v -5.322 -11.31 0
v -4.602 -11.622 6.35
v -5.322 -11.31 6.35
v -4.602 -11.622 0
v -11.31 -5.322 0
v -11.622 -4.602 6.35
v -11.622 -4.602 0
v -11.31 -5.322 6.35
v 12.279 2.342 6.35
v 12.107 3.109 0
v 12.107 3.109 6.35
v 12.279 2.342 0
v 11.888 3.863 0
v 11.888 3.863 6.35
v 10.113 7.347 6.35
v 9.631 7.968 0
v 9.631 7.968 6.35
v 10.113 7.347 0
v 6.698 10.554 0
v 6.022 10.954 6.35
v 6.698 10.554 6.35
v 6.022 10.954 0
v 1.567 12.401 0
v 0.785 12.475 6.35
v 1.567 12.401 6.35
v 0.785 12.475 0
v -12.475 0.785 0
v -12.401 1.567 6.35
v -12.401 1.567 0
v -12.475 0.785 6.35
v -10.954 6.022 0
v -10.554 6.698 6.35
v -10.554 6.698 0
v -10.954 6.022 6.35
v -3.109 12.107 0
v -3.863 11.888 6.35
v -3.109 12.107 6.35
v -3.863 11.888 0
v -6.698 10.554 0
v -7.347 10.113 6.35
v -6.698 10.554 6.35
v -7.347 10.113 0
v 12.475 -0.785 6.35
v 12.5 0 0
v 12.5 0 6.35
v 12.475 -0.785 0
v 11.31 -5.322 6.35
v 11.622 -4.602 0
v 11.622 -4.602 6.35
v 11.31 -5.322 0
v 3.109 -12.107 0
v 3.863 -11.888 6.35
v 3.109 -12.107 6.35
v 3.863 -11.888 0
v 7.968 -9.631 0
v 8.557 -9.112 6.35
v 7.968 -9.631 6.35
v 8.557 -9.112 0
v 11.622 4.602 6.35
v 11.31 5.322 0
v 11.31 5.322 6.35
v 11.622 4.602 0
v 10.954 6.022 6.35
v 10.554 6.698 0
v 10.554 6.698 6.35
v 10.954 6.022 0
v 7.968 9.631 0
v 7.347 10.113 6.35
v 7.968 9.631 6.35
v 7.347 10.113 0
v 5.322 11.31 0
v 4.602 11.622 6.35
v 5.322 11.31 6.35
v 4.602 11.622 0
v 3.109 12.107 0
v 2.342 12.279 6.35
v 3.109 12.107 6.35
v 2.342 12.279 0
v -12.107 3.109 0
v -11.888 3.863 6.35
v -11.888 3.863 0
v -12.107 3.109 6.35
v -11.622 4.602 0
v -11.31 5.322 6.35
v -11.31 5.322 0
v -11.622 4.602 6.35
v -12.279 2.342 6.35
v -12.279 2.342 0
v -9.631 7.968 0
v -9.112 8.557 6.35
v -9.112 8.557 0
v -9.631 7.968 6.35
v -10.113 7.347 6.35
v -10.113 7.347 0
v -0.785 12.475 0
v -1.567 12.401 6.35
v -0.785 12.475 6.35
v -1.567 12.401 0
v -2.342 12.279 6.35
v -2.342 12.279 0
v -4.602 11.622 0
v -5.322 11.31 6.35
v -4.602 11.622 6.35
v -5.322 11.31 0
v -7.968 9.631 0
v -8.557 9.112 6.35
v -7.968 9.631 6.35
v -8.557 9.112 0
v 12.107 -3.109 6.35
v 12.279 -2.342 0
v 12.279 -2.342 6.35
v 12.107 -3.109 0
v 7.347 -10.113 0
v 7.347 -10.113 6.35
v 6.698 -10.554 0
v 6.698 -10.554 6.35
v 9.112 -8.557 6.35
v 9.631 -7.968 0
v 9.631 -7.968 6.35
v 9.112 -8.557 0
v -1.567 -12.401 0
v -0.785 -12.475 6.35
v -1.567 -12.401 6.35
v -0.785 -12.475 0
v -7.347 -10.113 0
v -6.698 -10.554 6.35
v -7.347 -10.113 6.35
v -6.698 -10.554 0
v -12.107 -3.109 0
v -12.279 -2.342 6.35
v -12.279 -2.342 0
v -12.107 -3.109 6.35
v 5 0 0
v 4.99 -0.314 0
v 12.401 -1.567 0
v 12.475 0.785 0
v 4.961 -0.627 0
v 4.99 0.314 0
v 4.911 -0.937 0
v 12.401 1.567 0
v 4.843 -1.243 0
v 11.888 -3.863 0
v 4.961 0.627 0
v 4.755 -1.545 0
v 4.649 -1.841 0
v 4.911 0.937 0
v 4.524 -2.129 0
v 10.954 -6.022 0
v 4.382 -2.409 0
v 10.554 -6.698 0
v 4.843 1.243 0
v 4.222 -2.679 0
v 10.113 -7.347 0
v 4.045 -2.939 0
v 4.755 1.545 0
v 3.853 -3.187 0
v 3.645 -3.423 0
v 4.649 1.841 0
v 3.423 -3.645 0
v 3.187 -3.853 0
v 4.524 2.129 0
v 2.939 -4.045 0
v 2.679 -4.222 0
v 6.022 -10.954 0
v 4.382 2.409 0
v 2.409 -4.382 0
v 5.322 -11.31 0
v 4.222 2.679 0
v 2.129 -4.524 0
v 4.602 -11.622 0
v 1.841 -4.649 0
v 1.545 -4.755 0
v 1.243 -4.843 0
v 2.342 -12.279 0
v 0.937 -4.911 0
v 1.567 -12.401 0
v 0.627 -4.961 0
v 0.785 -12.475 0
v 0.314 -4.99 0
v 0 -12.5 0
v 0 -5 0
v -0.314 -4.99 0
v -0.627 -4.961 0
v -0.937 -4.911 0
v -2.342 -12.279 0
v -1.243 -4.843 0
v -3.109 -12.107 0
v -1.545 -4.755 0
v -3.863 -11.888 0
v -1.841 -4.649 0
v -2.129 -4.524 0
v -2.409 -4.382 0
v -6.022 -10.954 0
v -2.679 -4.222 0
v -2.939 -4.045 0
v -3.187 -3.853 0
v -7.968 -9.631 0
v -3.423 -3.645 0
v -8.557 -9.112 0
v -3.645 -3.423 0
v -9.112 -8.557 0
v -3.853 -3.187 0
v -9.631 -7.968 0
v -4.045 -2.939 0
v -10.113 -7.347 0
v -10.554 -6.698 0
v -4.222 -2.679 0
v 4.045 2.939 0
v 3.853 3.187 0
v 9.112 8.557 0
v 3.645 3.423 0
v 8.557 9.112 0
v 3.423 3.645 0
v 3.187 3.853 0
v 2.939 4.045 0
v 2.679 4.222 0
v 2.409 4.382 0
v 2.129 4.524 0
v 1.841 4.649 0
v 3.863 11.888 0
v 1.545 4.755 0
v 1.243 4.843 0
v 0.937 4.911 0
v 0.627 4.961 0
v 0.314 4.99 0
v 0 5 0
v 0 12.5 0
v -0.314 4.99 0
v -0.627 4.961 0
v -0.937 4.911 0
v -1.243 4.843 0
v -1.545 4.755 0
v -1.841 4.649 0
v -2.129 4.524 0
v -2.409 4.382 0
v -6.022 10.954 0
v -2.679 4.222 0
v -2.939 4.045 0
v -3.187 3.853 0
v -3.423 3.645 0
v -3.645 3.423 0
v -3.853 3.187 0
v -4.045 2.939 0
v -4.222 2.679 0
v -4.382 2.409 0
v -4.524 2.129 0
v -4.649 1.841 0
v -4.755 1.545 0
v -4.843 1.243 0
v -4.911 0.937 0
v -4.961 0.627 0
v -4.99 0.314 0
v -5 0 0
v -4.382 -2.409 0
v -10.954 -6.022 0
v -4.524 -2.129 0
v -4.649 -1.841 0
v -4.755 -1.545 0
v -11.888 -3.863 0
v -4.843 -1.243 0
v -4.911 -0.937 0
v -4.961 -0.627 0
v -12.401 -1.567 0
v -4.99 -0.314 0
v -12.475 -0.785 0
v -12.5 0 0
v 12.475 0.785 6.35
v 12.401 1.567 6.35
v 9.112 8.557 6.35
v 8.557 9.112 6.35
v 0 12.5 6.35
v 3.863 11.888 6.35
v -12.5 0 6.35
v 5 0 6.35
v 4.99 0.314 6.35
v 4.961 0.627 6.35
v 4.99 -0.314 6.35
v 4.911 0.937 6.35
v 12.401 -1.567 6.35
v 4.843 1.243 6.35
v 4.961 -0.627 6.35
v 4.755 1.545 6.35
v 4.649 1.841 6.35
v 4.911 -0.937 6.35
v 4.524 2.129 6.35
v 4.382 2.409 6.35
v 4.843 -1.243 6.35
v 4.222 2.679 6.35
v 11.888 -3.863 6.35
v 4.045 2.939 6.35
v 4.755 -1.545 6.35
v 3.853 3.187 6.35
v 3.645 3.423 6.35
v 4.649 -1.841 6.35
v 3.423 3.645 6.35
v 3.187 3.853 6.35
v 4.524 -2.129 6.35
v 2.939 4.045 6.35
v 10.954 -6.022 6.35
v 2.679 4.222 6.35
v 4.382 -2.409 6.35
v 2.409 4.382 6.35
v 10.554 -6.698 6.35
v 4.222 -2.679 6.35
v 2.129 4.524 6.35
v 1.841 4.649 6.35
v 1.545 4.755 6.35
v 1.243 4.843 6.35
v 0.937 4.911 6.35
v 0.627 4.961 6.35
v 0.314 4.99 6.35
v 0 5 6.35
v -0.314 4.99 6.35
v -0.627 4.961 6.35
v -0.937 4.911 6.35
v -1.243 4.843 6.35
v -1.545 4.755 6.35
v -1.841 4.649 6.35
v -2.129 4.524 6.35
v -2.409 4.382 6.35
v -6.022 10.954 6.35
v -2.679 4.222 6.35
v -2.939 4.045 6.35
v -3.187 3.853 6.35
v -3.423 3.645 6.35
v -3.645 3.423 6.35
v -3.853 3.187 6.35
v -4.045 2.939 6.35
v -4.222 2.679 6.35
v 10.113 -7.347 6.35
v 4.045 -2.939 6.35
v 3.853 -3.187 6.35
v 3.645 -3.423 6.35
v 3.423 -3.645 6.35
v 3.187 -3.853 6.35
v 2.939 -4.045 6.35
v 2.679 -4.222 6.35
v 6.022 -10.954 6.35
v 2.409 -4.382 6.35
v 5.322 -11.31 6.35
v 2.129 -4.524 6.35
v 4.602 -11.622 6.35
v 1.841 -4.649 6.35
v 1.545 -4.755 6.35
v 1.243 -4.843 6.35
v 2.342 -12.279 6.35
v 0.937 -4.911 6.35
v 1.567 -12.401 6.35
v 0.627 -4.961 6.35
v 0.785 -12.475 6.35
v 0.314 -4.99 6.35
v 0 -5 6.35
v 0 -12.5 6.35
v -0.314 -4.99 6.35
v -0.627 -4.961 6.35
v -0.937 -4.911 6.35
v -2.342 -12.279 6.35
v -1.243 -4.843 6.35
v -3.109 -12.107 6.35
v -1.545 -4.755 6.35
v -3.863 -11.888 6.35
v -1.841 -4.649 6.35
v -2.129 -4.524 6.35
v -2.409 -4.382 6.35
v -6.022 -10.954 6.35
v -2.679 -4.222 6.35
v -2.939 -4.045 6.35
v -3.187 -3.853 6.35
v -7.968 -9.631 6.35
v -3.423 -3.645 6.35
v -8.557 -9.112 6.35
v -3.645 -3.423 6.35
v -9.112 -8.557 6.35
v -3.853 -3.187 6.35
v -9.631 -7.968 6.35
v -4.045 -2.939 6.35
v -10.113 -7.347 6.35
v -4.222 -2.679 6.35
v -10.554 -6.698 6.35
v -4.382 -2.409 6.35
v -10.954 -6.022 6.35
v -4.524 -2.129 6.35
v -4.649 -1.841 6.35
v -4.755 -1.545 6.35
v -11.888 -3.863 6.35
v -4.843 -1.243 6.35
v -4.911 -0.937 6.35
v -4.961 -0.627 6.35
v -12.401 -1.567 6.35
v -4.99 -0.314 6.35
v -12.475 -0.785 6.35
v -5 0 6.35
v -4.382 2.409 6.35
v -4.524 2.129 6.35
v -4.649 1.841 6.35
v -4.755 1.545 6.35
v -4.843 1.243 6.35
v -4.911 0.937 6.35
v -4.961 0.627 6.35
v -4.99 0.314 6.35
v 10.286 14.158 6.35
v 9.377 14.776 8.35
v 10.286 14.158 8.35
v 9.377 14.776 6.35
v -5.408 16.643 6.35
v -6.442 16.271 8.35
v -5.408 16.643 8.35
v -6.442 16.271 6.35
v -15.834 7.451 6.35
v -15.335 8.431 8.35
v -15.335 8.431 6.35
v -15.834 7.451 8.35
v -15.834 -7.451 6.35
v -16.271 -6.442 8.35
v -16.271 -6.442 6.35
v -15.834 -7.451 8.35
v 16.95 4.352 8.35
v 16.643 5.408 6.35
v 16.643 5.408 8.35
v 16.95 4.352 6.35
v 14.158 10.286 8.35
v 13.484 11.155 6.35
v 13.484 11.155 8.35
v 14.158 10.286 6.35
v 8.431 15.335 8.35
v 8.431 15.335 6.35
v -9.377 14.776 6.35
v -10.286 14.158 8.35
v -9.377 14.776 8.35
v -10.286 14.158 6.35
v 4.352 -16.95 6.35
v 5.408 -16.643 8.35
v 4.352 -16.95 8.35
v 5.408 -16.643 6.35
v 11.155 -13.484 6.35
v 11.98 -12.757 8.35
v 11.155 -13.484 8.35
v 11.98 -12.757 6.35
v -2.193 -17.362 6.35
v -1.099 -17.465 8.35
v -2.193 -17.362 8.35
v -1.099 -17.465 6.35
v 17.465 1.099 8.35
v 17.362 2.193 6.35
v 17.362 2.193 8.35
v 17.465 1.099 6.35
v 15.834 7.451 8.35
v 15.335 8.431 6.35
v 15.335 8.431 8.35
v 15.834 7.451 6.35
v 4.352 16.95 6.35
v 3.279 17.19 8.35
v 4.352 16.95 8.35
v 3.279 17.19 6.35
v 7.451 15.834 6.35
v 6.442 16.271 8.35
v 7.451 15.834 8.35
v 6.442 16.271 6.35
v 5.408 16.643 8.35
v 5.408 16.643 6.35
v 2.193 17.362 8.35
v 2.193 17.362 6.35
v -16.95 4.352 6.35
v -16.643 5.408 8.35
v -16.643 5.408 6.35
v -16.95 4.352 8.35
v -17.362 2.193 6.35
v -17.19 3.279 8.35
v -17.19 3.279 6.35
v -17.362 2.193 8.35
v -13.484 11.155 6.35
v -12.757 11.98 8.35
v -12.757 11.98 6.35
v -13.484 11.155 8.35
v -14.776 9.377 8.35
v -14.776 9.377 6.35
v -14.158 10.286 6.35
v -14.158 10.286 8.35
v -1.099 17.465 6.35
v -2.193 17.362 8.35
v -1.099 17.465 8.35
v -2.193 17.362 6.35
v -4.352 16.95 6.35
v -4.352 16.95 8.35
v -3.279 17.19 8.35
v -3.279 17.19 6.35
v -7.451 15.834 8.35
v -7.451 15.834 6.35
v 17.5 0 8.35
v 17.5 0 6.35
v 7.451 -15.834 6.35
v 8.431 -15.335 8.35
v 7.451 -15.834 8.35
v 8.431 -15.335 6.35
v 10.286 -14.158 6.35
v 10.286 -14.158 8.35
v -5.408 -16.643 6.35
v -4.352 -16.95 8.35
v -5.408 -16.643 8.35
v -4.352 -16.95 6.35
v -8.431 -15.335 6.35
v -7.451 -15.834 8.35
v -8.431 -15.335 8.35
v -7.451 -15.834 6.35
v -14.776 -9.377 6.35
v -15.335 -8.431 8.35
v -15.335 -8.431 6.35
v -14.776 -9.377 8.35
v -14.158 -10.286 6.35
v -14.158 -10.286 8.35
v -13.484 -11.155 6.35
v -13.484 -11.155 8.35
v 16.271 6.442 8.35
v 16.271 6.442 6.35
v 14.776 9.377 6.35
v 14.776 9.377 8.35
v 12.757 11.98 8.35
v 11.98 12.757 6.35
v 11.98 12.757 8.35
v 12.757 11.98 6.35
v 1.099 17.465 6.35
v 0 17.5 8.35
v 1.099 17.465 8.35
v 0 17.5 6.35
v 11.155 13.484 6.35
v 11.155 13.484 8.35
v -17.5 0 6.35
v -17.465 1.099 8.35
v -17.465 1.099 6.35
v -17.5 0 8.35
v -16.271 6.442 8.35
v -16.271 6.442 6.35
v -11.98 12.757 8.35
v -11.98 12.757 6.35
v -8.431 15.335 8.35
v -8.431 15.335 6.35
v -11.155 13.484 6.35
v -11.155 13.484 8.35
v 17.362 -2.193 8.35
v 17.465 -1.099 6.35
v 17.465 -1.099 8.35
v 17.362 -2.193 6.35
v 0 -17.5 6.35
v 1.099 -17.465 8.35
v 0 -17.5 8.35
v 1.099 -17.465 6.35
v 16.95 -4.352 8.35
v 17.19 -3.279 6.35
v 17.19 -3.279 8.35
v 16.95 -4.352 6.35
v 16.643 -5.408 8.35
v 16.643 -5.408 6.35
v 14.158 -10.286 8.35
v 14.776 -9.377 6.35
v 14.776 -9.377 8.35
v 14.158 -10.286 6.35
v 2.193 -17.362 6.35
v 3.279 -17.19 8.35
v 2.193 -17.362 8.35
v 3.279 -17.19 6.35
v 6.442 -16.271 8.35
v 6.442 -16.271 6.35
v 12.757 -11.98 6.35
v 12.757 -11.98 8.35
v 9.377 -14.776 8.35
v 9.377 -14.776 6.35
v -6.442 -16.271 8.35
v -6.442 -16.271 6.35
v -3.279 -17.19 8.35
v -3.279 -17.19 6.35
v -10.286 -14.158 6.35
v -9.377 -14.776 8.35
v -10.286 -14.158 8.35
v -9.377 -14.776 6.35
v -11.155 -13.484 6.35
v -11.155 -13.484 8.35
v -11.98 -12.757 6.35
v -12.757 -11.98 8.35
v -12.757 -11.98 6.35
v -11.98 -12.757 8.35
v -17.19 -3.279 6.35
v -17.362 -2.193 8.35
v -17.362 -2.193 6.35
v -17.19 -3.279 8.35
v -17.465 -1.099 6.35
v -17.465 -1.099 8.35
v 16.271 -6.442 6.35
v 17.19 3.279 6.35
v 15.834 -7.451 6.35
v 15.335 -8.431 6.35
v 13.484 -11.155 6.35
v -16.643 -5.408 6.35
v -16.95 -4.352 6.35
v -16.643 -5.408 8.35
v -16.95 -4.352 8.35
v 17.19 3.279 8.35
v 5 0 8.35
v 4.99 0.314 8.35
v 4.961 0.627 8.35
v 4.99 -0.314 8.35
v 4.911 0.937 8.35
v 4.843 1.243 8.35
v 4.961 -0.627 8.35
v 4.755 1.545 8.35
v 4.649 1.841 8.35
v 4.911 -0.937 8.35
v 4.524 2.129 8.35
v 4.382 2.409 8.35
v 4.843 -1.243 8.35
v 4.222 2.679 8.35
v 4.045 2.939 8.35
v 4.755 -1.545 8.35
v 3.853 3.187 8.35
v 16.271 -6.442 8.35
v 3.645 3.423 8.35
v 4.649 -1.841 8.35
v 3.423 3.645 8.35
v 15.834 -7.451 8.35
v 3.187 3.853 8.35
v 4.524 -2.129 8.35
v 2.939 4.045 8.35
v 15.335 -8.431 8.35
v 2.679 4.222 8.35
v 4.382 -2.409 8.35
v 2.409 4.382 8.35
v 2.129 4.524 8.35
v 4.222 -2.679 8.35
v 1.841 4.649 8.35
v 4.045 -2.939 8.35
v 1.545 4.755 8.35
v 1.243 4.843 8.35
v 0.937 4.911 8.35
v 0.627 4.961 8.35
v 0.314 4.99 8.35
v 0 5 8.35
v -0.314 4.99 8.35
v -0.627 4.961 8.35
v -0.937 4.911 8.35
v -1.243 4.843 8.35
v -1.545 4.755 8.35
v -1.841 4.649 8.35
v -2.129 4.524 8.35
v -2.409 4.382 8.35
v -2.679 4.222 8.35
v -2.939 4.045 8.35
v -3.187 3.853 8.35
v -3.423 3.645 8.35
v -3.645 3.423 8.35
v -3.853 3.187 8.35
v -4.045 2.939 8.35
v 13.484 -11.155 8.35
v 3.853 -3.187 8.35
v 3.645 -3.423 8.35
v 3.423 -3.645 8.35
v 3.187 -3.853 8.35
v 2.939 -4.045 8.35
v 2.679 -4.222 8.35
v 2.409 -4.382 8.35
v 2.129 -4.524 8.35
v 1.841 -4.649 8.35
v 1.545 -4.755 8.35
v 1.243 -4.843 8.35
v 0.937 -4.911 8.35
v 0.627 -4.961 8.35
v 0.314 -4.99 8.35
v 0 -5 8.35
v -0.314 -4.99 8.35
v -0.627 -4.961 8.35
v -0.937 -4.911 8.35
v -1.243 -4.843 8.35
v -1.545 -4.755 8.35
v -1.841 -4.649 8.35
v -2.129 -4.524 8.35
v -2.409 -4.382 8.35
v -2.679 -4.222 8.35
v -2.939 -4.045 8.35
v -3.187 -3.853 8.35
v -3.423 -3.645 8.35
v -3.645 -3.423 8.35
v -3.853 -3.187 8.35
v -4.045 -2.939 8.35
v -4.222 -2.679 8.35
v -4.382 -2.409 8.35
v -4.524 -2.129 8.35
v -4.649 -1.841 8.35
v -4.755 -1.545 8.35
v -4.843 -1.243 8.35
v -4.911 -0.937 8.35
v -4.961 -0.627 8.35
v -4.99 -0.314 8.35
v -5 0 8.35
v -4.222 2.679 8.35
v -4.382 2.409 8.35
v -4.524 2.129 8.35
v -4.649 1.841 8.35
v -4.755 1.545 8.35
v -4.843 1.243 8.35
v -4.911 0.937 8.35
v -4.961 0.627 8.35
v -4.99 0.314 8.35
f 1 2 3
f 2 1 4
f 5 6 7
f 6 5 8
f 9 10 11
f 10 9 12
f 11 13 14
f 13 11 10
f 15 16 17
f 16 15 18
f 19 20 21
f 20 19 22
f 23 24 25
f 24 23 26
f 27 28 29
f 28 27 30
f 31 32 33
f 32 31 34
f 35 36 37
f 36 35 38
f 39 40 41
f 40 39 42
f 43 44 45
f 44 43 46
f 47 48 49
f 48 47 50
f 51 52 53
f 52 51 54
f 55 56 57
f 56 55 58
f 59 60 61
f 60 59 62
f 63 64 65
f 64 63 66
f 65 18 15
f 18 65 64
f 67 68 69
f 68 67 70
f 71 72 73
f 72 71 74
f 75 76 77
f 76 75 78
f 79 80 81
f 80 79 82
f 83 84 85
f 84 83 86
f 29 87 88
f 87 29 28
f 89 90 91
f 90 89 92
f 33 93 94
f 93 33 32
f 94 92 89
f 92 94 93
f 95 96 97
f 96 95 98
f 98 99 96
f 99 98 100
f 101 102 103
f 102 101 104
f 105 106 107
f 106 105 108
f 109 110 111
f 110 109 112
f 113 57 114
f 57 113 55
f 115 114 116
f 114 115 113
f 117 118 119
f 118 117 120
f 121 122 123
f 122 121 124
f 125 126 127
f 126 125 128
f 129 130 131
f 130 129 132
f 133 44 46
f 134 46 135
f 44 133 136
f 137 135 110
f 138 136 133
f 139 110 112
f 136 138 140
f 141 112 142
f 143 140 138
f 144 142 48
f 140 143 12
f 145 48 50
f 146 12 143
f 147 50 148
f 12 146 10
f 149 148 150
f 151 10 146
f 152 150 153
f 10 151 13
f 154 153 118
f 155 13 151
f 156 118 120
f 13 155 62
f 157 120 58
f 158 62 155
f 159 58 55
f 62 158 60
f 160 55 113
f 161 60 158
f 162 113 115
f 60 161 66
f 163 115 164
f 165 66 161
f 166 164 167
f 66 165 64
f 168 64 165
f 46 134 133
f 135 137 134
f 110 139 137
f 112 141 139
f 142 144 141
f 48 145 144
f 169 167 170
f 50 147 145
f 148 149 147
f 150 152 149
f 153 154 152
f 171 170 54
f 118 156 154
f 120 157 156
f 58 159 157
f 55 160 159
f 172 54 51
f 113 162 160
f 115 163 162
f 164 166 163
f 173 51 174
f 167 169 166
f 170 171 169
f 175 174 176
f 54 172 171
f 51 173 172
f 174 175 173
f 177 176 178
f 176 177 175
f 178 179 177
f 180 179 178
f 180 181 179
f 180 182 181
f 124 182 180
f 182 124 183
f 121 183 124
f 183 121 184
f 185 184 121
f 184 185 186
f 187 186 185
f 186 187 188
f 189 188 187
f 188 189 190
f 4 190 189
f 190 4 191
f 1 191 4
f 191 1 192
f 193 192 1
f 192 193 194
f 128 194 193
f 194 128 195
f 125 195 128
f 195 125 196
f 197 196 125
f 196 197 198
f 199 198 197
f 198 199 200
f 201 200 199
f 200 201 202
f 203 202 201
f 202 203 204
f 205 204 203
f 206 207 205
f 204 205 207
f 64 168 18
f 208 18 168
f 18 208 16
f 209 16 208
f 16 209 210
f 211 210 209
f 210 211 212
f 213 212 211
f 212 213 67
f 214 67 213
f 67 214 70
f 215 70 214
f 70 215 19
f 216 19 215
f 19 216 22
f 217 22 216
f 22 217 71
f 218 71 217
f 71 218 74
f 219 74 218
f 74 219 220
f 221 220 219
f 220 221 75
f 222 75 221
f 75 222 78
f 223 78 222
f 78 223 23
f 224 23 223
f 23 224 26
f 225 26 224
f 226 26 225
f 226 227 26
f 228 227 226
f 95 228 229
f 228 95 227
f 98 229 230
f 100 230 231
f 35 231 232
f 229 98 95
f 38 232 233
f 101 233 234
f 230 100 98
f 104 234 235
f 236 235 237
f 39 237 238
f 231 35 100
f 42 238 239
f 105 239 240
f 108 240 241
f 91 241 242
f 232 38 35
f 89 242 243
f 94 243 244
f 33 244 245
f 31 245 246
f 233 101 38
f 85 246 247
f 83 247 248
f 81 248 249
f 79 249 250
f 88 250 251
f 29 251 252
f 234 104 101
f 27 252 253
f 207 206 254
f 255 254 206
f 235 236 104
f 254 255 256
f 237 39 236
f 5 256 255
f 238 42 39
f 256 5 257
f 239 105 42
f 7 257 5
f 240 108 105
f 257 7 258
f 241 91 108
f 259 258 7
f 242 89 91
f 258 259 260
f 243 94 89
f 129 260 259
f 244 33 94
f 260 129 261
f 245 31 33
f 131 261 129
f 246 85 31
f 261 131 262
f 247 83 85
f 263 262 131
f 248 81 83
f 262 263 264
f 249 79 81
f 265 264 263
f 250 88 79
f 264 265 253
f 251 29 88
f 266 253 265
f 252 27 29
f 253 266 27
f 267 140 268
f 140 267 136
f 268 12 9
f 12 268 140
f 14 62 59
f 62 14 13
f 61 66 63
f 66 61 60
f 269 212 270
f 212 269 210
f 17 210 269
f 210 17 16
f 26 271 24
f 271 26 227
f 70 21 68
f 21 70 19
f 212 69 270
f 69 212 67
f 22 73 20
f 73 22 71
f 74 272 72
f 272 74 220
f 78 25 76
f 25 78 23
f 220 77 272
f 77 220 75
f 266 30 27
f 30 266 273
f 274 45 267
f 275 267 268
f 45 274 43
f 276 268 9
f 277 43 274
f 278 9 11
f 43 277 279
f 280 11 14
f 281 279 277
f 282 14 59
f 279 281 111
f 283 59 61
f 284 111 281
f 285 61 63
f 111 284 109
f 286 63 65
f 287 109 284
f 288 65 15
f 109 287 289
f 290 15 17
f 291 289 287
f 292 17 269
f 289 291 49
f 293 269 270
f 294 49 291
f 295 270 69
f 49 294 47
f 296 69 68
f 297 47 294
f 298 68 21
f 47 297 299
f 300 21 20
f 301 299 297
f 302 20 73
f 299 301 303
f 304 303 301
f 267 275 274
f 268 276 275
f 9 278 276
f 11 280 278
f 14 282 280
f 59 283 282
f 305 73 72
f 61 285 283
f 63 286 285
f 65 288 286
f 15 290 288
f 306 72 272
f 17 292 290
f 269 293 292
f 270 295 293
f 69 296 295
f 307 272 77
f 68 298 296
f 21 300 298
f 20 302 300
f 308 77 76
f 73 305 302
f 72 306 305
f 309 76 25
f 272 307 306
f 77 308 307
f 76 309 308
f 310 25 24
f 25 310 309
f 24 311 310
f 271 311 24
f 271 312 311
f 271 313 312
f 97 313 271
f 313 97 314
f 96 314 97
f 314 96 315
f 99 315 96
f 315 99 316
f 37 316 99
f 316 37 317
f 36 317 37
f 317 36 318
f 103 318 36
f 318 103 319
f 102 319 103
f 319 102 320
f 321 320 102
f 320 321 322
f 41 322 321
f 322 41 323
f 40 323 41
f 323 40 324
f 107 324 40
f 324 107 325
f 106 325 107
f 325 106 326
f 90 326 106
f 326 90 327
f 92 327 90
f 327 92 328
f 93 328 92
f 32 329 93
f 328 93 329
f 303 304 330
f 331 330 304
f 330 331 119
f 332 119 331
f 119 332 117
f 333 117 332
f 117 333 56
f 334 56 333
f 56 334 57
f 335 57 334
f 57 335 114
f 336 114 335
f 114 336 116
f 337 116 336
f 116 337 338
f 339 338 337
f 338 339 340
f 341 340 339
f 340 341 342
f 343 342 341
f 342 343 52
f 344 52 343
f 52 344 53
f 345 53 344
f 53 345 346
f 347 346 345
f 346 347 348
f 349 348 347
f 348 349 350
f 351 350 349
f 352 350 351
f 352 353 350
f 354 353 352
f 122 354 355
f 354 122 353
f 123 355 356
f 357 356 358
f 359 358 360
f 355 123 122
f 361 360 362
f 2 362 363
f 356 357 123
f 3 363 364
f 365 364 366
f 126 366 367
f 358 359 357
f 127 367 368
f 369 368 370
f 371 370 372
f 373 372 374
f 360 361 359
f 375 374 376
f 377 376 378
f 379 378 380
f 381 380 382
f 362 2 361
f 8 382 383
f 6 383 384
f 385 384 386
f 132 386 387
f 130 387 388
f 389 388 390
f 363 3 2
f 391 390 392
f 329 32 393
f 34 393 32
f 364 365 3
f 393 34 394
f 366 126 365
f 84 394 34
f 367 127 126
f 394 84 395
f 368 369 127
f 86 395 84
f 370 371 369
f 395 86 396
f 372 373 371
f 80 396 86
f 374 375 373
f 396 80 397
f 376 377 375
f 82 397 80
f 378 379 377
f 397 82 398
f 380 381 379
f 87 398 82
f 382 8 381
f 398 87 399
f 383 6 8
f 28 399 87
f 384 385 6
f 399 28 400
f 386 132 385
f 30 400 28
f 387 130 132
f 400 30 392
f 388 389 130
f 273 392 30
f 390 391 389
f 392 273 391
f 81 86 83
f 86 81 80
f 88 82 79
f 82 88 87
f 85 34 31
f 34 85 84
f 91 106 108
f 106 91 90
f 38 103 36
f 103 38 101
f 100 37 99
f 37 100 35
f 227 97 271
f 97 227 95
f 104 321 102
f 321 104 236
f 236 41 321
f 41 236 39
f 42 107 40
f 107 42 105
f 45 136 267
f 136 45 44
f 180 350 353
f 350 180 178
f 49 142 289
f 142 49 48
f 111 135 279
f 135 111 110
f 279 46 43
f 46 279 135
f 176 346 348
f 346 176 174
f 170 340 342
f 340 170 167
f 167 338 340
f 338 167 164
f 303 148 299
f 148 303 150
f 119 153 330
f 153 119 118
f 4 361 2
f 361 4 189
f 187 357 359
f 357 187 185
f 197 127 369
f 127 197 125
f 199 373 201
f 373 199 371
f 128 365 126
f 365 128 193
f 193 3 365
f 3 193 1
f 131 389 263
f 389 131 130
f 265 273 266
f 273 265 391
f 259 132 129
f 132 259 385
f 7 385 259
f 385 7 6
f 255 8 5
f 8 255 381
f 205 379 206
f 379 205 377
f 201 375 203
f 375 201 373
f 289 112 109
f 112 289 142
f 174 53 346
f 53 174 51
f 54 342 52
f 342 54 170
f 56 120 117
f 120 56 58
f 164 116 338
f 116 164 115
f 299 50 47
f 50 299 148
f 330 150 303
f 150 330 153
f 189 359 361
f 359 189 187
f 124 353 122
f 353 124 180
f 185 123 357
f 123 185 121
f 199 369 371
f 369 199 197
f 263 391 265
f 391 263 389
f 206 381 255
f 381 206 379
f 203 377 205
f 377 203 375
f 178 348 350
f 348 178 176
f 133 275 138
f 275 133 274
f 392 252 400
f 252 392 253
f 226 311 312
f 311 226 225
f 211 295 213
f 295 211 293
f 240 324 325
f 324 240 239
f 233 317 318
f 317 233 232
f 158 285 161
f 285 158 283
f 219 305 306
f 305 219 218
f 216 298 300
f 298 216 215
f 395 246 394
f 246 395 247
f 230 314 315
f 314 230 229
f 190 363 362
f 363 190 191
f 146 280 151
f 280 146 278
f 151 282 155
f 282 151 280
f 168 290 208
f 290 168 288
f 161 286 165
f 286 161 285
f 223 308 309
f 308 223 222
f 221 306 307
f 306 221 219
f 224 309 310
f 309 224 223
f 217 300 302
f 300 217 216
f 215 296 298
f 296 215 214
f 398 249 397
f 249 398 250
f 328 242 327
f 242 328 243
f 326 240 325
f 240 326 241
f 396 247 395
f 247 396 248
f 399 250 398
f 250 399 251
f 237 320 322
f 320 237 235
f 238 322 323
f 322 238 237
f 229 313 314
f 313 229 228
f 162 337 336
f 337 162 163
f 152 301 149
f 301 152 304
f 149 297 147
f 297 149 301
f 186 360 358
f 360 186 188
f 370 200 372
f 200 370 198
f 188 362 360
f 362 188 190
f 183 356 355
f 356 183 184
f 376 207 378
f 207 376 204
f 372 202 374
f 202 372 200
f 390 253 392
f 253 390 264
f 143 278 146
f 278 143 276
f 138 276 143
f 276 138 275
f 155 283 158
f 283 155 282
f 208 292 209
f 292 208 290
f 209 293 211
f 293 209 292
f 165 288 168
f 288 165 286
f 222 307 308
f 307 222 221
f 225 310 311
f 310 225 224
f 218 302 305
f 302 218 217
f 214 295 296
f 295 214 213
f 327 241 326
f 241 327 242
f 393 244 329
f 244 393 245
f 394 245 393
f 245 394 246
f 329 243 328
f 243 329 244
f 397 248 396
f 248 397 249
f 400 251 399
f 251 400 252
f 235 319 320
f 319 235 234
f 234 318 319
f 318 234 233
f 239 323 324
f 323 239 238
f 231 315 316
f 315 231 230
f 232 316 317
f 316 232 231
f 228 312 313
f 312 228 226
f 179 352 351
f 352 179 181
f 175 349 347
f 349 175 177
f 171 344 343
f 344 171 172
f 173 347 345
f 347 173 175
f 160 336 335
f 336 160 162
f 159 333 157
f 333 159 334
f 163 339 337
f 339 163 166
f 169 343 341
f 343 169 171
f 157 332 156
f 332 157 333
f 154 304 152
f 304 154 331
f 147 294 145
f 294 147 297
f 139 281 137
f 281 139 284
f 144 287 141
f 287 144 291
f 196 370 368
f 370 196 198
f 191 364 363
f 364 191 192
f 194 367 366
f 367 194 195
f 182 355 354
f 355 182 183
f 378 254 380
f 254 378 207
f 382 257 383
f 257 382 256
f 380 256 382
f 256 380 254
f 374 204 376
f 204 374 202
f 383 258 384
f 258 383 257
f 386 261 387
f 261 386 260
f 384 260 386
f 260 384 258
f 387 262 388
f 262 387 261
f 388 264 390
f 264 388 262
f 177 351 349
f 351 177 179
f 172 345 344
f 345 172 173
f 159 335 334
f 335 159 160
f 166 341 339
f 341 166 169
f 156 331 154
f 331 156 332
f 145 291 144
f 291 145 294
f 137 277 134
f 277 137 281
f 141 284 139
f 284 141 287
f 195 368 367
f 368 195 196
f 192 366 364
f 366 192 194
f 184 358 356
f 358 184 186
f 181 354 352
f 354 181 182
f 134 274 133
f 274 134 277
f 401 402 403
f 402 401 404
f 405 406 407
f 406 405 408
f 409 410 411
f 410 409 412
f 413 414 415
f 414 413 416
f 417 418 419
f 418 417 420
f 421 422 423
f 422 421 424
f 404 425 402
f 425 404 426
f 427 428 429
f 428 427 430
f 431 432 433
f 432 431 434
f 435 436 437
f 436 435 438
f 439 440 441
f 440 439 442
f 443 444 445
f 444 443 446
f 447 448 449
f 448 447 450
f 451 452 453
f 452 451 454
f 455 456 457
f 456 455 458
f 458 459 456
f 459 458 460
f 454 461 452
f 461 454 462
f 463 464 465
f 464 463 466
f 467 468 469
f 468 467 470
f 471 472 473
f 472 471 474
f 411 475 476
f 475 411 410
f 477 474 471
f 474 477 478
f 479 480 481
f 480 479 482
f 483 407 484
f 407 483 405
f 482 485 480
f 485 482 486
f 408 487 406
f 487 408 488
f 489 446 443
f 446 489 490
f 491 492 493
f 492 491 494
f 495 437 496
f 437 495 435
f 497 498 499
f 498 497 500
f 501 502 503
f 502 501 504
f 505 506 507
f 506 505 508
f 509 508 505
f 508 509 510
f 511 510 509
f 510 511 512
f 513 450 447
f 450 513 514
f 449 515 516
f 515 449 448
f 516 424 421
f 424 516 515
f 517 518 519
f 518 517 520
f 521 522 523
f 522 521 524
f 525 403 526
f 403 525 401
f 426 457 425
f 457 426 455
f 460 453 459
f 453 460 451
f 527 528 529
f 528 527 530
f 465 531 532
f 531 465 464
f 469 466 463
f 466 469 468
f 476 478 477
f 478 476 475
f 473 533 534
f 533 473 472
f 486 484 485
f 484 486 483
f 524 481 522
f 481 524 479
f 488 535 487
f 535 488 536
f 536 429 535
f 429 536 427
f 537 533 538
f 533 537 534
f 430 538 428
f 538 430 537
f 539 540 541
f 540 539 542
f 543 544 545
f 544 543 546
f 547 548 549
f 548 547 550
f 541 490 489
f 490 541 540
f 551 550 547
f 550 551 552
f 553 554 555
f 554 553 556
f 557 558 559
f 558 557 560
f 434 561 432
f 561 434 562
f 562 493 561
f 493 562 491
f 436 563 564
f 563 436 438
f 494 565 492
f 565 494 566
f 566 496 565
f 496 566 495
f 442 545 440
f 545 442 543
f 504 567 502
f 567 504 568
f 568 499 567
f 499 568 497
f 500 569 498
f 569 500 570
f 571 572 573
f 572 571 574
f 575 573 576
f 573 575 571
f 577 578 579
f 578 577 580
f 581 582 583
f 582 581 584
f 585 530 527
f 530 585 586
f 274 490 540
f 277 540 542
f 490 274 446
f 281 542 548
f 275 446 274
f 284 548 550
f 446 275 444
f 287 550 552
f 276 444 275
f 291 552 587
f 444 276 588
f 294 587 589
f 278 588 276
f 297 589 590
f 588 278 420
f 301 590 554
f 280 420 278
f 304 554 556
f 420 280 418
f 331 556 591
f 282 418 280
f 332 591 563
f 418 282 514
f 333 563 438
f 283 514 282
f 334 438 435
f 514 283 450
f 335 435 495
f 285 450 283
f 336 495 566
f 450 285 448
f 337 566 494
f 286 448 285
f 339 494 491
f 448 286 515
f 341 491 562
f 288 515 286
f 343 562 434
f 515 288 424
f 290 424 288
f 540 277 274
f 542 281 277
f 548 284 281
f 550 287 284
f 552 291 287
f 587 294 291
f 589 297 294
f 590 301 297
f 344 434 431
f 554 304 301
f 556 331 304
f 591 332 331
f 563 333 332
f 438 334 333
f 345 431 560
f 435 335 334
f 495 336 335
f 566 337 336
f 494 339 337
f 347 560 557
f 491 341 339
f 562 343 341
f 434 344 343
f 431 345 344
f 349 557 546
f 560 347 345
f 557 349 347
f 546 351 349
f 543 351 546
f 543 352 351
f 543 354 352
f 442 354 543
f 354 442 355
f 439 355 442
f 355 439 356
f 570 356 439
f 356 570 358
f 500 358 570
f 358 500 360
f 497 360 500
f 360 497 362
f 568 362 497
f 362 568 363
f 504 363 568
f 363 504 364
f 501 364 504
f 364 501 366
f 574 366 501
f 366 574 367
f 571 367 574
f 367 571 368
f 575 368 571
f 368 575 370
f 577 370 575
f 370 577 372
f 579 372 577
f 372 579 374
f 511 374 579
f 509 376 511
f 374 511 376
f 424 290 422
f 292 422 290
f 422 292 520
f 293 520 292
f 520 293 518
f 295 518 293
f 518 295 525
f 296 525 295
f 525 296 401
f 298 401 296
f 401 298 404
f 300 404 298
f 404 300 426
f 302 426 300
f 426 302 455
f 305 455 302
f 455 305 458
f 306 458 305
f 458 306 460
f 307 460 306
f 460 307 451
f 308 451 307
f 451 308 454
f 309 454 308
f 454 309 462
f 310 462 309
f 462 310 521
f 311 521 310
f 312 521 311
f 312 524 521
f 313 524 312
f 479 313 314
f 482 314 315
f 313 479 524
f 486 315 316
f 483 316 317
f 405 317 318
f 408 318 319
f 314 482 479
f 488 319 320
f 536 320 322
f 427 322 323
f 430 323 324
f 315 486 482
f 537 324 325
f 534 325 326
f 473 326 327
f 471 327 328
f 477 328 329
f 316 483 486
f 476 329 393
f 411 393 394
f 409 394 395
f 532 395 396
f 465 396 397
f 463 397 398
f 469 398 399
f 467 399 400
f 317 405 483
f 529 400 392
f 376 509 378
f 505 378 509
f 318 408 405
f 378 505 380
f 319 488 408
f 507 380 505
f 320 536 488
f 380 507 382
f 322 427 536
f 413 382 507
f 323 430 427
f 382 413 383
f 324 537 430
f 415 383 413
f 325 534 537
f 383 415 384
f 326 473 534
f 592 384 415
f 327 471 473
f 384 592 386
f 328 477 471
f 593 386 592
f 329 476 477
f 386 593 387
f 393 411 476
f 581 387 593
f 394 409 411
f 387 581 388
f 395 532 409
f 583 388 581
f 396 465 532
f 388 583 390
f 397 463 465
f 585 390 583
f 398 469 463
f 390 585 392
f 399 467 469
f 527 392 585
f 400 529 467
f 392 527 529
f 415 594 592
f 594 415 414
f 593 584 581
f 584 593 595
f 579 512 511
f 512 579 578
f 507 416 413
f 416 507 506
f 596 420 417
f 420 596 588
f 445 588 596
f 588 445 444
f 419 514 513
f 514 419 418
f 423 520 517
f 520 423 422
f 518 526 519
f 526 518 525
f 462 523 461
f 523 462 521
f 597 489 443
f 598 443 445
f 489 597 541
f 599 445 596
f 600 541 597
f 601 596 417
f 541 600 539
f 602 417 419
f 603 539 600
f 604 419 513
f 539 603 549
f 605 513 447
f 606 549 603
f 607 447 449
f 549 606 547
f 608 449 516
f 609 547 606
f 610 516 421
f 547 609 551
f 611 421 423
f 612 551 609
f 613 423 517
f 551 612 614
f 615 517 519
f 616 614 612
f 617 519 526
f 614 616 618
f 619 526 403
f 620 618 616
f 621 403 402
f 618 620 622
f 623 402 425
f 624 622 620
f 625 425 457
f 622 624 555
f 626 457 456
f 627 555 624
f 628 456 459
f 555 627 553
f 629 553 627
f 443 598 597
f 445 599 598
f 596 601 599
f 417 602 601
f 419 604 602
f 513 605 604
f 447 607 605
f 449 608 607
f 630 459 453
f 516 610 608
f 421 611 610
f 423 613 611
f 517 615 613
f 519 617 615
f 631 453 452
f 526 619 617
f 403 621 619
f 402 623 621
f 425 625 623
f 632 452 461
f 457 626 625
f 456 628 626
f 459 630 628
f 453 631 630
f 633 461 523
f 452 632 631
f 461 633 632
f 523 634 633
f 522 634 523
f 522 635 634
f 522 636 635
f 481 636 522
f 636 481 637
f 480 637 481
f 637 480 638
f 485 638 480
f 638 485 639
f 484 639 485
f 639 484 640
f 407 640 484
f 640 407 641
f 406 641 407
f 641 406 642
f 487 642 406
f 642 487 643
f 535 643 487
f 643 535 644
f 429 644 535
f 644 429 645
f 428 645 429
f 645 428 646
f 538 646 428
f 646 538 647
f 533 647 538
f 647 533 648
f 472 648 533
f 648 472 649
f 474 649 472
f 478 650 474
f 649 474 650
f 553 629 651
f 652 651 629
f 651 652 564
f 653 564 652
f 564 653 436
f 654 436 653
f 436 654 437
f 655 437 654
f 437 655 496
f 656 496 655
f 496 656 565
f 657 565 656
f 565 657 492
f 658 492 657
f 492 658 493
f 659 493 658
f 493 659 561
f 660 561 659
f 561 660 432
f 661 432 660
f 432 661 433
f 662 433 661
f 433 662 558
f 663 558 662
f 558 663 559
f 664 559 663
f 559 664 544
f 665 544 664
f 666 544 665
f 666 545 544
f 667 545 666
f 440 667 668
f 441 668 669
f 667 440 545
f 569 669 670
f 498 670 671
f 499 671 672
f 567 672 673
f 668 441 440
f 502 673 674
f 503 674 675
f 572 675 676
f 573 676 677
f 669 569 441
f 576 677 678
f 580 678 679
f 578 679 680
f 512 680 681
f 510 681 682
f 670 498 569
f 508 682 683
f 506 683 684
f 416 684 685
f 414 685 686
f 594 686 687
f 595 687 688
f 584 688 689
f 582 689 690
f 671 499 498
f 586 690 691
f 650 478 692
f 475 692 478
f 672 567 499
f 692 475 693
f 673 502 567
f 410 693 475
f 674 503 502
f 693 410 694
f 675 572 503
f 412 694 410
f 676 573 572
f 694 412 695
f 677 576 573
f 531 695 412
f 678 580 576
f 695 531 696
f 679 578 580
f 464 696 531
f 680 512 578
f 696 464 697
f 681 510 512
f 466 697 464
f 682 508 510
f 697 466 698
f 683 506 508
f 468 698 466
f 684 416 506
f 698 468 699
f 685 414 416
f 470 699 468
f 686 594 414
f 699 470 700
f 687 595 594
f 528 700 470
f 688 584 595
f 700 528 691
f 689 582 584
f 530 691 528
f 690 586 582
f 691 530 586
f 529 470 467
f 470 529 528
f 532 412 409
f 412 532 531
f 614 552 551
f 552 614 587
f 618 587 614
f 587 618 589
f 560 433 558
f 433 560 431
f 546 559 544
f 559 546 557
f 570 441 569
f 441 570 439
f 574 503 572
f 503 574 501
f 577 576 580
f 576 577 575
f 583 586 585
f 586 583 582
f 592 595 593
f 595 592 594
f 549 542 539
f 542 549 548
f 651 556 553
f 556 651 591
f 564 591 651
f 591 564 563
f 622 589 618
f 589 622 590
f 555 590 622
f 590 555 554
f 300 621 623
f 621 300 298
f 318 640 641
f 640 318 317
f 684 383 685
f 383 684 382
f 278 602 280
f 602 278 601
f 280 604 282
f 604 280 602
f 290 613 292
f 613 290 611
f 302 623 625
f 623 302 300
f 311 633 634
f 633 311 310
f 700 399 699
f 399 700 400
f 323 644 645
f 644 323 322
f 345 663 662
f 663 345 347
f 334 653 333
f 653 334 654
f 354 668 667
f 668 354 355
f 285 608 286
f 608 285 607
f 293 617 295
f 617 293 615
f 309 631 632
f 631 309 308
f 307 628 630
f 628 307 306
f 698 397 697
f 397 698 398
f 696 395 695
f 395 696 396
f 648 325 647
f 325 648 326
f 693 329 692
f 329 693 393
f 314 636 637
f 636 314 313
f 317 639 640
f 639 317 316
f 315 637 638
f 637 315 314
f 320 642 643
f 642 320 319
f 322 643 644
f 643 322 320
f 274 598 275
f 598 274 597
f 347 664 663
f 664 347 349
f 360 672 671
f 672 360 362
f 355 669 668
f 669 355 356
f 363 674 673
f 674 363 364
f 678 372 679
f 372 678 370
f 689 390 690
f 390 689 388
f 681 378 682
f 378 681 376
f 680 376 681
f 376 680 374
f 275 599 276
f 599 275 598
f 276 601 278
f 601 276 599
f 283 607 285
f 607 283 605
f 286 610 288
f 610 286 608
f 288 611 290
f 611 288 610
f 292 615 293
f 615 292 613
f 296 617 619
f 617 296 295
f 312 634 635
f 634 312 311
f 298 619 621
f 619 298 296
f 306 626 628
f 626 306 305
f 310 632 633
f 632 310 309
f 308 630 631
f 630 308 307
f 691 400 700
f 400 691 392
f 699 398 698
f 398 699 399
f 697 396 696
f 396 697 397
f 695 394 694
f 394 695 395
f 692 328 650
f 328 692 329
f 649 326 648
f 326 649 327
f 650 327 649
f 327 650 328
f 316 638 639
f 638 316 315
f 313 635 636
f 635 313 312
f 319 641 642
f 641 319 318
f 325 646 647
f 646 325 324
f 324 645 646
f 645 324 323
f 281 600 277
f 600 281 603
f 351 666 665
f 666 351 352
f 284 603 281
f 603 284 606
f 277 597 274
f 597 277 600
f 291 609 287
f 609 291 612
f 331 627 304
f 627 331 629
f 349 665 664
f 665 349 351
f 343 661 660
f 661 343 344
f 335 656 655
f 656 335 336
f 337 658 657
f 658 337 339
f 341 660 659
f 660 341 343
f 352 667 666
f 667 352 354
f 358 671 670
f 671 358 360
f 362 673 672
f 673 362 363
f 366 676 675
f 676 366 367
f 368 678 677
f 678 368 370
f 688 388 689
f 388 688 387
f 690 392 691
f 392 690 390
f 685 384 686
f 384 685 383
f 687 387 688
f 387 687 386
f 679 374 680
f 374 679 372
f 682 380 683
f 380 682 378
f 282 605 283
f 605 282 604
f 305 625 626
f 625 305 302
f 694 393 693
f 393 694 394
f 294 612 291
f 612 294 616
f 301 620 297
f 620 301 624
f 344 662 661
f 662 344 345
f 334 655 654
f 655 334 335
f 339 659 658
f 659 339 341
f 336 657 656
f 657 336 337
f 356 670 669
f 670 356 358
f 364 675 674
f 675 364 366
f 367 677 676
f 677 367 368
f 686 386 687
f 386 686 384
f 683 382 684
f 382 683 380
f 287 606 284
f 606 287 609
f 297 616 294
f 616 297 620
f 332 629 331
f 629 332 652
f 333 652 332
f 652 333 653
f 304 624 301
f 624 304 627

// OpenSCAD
$fn=100;

in=25.4;
r=(in-.4)/2;
ID=10;
r2=ID/2;
difference(){
    
    cylinder(1/4*in,r,r);
    translate([0,0,-1/4*in])
    cylinder(100,r2,r2);
}
translate([0,0,1/4*in])
difference(){
    cylinder(2,r+5,r+5);
    translate([0,0,-1/4*in])
    cylinder(100,r2,r2);
}
